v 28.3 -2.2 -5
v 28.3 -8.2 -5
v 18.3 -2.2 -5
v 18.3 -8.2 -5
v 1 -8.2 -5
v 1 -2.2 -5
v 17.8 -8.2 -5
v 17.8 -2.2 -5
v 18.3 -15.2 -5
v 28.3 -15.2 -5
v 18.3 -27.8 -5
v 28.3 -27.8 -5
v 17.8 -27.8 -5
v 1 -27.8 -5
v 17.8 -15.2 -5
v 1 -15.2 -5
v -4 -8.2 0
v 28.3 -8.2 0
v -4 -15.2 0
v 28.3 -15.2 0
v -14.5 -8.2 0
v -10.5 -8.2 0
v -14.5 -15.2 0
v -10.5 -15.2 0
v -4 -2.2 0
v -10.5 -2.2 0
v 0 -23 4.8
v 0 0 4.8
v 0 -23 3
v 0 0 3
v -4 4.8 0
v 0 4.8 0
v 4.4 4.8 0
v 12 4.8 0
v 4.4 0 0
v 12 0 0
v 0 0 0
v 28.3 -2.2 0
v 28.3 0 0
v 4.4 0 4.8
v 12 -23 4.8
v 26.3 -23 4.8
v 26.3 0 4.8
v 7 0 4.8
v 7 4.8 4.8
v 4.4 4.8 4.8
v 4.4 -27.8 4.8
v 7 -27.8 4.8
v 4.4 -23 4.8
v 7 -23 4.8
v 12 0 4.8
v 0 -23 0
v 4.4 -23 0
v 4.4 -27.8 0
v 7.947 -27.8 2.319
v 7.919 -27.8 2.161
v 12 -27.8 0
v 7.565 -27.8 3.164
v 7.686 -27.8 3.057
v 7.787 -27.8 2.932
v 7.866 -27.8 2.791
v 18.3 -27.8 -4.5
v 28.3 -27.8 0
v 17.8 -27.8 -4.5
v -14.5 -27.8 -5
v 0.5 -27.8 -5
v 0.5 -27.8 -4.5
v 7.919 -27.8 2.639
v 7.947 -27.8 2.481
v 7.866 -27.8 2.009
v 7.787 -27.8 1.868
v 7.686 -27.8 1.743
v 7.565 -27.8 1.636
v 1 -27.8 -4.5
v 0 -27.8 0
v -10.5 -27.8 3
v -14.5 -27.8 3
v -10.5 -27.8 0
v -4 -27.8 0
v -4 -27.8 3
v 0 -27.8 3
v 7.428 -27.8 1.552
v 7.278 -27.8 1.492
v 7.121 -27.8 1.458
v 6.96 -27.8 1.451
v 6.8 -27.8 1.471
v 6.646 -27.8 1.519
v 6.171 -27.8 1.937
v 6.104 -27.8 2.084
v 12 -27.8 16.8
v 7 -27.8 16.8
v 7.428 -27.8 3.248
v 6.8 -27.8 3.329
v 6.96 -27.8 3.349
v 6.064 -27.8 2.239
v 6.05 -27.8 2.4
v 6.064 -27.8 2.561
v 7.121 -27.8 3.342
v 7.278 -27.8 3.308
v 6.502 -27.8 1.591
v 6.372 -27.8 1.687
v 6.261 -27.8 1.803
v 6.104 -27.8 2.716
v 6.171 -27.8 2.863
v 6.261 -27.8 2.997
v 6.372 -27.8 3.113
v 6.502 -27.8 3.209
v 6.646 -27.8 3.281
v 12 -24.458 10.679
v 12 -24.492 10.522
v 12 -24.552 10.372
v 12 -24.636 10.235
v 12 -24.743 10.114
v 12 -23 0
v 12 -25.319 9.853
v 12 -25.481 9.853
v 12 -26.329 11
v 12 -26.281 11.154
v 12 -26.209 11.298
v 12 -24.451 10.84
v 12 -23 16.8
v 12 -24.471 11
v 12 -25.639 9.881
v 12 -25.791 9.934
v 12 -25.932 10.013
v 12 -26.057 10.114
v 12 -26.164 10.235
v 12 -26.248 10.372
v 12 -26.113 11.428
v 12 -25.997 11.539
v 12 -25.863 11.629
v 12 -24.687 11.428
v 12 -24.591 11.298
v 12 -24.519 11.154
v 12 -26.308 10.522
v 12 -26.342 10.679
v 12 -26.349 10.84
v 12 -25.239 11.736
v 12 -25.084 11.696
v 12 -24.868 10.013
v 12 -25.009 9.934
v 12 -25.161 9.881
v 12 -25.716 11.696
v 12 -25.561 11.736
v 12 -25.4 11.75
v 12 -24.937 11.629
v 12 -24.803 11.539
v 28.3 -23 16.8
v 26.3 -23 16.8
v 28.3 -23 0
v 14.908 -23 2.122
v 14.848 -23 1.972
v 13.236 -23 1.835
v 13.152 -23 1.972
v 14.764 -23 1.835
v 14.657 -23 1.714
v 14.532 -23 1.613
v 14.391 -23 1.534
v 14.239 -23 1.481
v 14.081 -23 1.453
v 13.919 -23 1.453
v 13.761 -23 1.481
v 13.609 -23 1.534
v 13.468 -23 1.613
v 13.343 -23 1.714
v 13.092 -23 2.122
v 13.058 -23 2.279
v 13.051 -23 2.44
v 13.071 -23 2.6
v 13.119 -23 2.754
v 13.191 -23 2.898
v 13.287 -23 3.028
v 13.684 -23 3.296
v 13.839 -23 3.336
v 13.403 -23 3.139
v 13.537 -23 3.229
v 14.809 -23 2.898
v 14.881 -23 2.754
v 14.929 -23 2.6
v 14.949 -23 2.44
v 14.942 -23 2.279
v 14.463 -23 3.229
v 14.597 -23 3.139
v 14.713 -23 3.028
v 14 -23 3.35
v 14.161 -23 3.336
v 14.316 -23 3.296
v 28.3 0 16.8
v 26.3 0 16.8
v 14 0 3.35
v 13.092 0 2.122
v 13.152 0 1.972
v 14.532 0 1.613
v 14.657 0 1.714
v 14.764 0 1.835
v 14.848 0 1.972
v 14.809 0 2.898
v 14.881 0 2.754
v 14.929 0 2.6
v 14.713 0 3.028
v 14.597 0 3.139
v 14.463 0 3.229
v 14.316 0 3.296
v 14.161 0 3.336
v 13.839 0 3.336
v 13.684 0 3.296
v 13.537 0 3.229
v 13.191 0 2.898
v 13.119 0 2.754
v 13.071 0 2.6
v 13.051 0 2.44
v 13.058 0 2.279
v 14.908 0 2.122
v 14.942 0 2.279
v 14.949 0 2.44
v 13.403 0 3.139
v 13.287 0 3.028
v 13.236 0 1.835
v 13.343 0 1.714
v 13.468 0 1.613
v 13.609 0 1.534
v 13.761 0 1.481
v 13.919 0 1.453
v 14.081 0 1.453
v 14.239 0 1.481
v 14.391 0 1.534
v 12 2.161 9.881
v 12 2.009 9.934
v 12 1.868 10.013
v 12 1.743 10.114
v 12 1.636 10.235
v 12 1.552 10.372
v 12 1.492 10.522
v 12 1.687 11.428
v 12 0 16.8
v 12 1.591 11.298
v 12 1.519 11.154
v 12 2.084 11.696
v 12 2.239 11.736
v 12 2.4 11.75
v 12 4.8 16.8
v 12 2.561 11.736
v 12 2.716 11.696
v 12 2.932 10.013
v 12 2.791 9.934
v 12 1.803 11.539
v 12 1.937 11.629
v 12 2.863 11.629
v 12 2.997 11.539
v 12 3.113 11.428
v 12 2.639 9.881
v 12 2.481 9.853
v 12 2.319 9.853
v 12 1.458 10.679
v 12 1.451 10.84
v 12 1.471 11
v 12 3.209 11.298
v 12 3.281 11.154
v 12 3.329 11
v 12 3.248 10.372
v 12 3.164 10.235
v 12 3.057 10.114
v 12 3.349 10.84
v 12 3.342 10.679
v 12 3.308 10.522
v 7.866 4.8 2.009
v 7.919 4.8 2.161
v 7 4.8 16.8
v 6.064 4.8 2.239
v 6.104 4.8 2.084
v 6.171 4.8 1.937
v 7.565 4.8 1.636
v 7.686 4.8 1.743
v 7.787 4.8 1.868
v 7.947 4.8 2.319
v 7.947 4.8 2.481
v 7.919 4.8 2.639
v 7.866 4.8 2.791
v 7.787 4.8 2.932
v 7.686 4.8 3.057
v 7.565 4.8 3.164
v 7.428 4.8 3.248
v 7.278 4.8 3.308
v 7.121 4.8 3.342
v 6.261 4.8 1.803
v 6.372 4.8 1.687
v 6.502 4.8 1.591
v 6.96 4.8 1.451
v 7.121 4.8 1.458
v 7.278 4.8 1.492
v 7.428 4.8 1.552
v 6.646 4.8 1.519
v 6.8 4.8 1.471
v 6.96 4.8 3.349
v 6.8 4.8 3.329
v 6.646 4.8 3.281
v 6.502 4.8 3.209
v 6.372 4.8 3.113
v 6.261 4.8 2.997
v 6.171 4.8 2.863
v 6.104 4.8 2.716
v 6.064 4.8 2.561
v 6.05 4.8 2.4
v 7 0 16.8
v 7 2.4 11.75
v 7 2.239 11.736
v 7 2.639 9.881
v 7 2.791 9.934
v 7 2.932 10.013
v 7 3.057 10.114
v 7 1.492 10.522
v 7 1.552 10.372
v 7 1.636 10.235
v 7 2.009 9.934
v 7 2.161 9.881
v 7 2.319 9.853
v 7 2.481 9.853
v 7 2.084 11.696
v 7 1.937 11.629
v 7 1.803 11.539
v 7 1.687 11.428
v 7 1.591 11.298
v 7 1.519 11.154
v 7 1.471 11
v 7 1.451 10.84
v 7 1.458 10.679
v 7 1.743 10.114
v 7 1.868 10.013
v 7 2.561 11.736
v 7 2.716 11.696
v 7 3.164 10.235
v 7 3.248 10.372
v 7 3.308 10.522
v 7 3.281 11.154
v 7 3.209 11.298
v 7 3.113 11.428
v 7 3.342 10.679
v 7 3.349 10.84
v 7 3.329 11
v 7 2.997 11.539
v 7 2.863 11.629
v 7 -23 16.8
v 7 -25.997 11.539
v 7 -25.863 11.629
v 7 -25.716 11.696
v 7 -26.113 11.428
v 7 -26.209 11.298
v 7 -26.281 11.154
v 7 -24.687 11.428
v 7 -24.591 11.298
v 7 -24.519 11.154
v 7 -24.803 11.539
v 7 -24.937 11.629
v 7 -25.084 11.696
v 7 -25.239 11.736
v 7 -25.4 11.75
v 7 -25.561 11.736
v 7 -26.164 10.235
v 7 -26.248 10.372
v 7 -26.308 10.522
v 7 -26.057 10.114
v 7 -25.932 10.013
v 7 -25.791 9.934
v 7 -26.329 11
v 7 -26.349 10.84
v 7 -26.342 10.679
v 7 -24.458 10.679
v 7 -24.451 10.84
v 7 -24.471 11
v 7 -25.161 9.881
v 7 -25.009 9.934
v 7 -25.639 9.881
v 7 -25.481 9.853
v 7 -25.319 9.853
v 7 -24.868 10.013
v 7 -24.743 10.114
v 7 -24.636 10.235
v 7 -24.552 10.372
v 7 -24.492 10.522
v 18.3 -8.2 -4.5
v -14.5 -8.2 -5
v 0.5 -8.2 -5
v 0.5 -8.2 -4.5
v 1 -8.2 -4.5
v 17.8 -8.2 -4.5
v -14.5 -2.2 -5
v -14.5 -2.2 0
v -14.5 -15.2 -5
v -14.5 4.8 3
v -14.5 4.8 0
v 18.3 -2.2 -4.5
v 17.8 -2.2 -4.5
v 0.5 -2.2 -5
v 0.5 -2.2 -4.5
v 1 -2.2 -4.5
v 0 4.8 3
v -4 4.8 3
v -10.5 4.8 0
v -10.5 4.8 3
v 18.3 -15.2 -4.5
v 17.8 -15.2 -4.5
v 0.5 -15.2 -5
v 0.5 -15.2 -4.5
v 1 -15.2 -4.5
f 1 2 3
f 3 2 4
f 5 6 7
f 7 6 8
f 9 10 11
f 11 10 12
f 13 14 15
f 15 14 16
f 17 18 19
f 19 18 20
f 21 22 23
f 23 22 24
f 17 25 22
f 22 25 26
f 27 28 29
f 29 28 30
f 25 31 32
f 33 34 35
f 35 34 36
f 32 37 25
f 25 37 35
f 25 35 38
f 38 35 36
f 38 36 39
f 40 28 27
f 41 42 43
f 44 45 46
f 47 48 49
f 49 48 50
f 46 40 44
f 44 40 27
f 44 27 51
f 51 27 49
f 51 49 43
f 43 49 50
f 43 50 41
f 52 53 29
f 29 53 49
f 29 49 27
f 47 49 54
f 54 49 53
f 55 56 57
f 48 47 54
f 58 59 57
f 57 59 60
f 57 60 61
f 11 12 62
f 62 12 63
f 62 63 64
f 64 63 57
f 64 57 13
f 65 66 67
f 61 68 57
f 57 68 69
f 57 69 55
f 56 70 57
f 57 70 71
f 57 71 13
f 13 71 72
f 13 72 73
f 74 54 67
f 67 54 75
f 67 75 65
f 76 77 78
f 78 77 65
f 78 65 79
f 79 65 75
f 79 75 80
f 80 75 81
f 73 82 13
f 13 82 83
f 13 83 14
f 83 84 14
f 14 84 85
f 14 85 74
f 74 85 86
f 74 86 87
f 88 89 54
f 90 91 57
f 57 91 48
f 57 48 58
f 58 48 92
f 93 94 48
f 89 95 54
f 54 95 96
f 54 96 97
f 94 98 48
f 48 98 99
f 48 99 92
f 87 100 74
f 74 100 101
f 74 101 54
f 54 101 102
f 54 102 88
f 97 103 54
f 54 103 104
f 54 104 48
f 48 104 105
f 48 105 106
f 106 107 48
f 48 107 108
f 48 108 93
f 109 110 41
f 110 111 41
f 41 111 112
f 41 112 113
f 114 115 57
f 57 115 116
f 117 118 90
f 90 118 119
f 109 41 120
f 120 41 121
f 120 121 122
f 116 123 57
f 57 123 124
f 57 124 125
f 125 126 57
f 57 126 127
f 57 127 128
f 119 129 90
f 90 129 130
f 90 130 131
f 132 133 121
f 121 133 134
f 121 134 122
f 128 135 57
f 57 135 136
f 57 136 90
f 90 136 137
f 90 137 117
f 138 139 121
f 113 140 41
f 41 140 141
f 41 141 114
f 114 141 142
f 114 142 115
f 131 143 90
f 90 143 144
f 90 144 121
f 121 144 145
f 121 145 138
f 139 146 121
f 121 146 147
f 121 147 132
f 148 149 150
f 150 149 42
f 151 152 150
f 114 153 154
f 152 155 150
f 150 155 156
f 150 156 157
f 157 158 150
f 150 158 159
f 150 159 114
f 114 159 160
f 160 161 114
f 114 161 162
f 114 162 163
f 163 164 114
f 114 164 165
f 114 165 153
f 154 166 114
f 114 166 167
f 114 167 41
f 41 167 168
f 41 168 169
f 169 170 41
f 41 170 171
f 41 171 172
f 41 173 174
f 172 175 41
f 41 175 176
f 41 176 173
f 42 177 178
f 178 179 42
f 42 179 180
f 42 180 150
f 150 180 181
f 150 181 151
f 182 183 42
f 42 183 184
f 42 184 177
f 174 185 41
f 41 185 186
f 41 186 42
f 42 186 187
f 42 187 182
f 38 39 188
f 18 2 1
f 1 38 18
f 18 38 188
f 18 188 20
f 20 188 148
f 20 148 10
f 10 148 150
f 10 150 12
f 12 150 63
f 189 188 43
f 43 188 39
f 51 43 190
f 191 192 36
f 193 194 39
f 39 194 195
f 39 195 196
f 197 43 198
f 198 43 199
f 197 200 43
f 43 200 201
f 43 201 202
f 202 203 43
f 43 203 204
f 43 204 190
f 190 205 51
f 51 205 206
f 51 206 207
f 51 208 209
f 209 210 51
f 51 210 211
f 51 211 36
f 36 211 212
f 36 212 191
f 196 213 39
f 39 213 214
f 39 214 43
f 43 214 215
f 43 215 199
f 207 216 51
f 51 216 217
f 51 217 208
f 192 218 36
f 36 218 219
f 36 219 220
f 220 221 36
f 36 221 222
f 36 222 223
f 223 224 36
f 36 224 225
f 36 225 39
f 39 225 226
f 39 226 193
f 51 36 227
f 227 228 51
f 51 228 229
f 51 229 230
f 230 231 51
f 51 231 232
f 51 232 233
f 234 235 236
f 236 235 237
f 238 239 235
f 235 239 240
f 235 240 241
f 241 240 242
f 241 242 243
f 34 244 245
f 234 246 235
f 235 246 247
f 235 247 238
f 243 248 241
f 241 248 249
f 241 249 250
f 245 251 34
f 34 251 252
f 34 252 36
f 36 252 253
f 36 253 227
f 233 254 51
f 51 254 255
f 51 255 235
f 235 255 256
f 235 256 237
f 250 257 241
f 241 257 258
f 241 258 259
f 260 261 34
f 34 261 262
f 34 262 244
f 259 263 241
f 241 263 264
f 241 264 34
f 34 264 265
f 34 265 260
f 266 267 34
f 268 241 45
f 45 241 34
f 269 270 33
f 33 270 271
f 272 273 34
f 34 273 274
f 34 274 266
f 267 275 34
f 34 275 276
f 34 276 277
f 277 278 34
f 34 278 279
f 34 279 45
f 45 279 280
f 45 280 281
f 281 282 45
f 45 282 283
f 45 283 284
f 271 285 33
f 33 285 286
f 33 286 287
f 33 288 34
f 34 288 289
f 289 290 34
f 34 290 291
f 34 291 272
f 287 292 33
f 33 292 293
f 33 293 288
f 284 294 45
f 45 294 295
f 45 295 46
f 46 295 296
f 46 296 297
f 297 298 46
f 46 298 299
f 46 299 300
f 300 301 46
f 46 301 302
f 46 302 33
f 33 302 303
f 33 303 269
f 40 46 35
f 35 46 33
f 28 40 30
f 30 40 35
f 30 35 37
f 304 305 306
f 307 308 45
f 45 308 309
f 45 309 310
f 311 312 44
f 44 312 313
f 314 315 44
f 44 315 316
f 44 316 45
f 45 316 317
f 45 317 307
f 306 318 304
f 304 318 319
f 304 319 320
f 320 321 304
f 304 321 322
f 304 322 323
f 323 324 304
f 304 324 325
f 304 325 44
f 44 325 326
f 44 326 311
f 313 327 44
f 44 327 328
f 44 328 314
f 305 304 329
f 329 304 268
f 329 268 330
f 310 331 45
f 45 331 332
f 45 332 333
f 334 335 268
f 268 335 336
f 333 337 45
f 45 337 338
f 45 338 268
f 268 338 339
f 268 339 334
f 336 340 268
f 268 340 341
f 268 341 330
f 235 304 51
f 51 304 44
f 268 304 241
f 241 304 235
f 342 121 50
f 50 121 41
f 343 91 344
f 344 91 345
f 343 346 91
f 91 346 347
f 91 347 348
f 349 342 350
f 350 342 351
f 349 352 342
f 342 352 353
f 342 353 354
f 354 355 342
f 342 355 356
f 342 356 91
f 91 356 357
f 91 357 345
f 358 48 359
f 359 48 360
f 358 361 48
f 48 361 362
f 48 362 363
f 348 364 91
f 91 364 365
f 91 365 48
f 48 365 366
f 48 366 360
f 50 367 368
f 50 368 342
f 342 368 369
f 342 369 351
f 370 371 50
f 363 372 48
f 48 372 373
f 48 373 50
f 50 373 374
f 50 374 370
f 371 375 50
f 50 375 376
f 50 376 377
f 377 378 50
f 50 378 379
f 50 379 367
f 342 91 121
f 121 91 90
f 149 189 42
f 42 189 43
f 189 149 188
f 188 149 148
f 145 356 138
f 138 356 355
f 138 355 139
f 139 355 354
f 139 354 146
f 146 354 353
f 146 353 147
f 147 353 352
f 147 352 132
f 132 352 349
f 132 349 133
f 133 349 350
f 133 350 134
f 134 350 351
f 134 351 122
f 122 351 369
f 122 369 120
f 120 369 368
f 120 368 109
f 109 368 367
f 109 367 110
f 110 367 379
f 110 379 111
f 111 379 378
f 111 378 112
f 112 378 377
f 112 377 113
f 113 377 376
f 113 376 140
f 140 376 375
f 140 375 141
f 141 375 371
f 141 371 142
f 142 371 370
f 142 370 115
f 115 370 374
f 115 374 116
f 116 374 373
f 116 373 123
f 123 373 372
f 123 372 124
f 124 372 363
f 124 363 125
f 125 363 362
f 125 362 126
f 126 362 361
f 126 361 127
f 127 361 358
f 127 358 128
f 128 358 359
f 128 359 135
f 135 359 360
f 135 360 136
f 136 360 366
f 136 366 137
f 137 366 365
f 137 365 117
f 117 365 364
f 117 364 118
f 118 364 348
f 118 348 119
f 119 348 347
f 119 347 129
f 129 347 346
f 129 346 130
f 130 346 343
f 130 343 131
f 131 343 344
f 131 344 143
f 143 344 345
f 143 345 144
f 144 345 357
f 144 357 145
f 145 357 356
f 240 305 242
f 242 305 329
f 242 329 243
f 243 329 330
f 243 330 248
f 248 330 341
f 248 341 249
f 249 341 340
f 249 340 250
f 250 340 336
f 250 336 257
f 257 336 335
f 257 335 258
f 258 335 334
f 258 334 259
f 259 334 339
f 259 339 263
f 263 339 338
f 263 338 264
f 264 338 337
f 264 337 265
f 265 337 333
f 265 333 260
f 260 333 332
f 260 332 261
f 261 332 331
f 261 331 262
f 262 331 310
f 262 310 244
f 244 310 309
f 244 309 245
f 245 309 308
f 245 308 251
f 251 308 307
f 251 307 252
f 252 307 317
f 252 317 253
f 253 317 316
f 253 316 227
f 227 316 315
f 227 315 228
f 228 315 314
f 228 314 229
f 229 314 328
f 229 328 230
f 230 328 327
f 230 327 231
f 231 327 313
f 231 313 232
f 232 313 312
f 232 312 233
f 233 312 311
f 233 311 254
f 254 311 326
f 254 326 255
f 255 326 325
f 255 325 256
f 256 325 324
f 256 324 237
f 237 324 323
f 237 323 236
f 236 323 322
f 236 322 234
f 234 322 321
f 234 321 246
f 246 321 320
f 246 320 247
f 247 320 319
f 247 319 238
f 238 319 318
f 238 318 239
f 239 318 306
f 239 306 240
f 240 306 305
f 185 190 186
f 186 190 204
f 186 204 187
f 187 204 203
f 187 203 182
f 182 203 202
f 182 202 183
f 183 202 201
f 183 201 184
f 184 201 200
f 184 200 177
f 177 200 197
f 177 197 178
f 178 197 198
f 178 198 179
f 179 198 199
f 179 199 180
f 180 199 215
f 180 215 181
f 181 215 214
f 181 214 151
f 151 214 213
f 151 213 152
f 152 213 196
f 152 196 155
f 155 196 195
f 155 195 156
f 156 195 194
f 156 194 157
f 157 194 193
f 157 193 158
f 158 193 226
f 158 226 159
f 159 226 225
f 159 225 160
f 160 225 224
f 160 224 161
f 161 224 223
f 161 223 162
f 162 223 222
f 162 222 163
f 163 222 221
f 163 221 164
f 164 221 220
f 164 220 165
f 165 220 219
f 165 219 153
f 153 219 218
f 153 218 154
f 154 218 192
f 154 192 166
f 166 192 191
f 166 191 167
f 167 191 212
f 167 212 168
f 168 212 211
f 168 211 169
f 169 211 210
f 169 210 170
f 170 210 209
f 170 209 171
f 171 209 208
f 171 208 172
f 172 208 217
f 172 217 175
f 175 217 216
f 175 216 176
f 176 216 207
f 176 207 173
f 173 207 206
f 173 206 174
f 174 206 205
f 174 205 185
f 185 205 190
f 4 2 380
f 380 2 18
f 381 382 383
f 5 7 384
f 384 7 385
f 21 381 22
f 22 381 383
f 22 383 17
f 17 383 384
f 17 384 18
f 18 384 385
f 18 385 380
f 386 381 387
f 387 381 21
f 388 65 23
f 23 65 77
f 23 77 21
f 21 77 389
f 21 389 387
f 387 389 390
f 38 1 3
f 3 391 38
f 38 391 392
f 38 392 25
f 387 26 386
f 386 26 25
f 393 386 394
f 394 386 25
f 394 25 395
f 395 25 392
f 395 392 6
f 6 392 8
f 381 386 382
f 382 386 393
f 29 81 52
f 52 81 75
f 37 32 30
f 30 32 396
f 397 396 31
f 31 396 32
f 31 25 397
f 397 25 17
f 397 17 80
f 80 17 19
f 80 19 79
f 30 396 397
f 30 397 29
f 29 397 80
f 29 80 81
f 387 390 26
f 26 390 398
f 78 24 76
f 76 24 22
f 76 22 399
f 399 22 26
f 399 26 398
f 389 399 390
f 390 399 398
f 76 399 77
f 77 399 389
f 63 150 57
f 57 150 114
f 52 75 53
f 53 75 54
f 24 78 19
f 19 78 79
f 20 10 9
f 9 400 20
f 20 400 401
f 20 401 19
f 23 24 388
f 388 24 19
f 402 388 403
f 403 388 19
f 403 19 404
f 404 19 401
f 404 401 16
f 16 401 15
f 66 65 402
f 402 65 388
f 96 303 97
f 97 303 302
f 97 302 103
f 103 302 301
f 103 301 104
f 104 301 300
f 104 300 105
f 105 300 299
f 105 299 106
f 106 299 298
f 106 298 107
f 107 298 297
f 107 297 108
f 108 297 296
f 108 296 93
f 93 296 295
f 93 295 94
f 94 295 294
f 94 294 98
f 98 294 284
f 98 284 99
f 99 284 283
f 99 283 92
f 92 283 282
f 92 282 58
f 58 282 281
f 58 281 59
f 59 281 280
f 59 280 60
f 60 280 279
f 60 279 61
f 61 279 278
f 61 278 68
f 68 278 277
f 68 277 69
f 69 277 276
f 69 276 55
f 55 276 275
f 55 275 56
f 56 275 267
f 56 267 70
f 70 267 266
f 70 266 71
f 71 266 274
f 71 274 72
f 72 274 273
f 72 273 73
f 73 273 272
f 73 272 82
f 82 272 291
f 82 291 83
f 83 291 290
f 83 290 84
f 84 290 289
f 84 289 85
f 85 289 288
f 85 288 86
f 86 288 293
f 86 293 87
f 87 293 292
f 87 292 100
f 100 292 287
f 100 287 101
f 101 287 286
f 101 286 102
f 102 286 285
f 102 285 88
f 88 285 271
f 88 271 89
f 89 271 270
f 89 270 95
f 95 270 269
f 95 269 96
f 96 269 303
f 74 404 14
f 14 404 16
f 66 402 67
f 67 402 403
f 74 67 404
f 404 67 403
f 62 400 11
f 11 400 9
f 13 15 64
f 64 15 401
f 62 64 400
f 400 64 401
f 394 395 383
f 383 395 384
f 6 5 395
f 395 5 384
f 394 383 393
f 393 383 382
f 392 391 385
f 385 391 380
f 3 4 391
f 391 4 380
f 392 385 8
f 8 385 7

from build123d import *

# Parameters (mm, degrees)
EXTRUDE_1_DEPTH     = 4.8
SKETCH_2_W          = 5
SKETCH_2_H          = 4.8
SKETCH_2_W_2        = 2
SKETCH_2_H_2        = 23
EXTRUDE_2_DEPTH     = 12
SKETCH_3_R          = 0.95
CUT_EXTRUDE_1_DEPTH = 5
SKETCH_6_R          = 0.95
CUT_EXTRUDE_4_DEPTH = 32
SKETCH_7_W          = 42.8
SKETCH_7_H          = 6
EXTRUDE_3_DEPTH     = 5
SKETCH_8_W          = 4
SKETCH_8_H          = 32.6
EXTRUDE_4_DEPTH     = 3
SKETCH_9_W          = 42.8
SKETCH_9_H          = 12.6
EXTRUDE_6_DEPTH     = 5
SKETCH_11_R         = 0.95
CUT_EXTRUDE_5_DEPTH = 47.323752007
SKETCH_12_W         = 0.5
SKETCH_12_H         = 25.6
CUT_EXTRUDE_6_DEPTH = 0.5


with BuildPart() as part:
    # 草图1 → 凸台-拉伸1 (new body)
    with BuildSketch(Plane.XY):
        Polygon((12, 0), (28.3, 0), (28.3, -23), (12, -23), (12, -27.8), (4.4, -27.8), (4.4, -23), (0, -23), (0, 0), (4.4, 0), (4.4, 4.8), (12, 4.8), align=None)
    extrude(amount=EXTRUDE_1_DEPTH)

    # 草图2 → 凸台-拉伸2 (add)
    with BuildSketch(Plane.XY.offset(4.8)):
        with Locations((9.5, 2.4)):
            Rectangle(SKETCH_2_W, SKETCH_2_H)
        with Locations((9.5, -25.4)):
            Rectangle(SKETCH_2_W, SKETCH_2_H)
        with Locations((27.3, -11.5)):
            Rectangle(SKETCH_2_W_2, SKETCH_2_H_2)
    extrude(amount=EXTRUDE_2_DEPTH)

    # 草图3 → 切除-拉伸1 (cut)
    with BuildSketch(Plane.ZY.offset(-7)):
        with Locations((10.8, 2.4)):
            Circle(SKETCH_3_R)
        with Locations((10.8, -25.4)):
            Circle(SKETCH_3_R)
    extrude(amount=-CUT_EXTRUDE_1_DEPTH, mode=Mode.SUBTRACT)

    # 草图6 → 切除-拉伸4 (cut)
    with BuildSketch(Plane(origin=(0, 0, 0), x_dir=(1, 0, 0), z_dir=(0, 1, 0))):
        with Locations(Location((14, -2.4, 0), (0, 0, 270))):
            Circle(SKETCH_6_R)
    extrude(amount=-CUT_EXTRUDE_4_DEPTH, mode=Mode.SUBTRACT)

    # 草图7 → 凸台-拉伸3 (add)
    with BuildSketch(Plane(origin=(0, 0, 0), x_dir=(-1, 0, 0), z_dir=(0, 0, -1))):
        with Locations((-6.9, -5.2)):
            Rectangle(SKETCH_7_W, SKETCH_7_H)
    extrude(amount=EXTRUDE_3_DEPTH)

    # 草图8 → 凸台-拉伸4 (add)
    with BuildSketch(Plane.XY):
        with Locations((-2, -11.5)):
            Rectangle(SKETCH_8_W, SKETCH_8_H)
        with Locations((-12.5, -11.5)):
            Rectangle(SKETCH_8_W, SKETCH_8_H)
    extrude(amount=EXTRUDE_4_DEPTH)

    # 草图9 → 凸台-拉伸6 (add)
    with BuildSketch(Plane(origin=(0, 0, 0), x_dir=(-1, 0, 0), z_dir=(0, 0, -1))):
        with Locations((-6.9, -21.5)):
            Rectangle(SKETCH_9_W, SKETCH_9_H)
    extrude(amount=EXTRUDE_6_DEPTH)

    # 草图11 → 切除-拉伸5 (cut, through all)
    with BuildSketch(Plane(origin=(0, 4.8, 0), x_dir=(1, 0, 0), z_dir=(0, 1, 0))):
        with Locations(Location((7, -2.4, 0), (0, 0, 180))):
            Circle(SKETCH_11_R)
    extrude(amount=-CUT_EXTRUDE_5_DEPTH, mode=Mode.SUBTRACT)

    # 草图12 → 切除-拉伸6 (cut)
    with BuildSketch(Plane(origin=(0, 0, -5), x_dir=(-1, 0, 0), z_dir=(0, 0, -1))):
        with Locations((-18.05, -15)):
            Rectangle(SKETCH_12_W, SKETCH_12_H)
        with Locations((-0.75, -15)):
            Rectangle(SKETCH_12_W, SKETCH_12_H)
    extrude(amount=-CUT_EXTRUDE_6_DEPTH, mode=Mode.SUBTRACT)


solid = part.part
